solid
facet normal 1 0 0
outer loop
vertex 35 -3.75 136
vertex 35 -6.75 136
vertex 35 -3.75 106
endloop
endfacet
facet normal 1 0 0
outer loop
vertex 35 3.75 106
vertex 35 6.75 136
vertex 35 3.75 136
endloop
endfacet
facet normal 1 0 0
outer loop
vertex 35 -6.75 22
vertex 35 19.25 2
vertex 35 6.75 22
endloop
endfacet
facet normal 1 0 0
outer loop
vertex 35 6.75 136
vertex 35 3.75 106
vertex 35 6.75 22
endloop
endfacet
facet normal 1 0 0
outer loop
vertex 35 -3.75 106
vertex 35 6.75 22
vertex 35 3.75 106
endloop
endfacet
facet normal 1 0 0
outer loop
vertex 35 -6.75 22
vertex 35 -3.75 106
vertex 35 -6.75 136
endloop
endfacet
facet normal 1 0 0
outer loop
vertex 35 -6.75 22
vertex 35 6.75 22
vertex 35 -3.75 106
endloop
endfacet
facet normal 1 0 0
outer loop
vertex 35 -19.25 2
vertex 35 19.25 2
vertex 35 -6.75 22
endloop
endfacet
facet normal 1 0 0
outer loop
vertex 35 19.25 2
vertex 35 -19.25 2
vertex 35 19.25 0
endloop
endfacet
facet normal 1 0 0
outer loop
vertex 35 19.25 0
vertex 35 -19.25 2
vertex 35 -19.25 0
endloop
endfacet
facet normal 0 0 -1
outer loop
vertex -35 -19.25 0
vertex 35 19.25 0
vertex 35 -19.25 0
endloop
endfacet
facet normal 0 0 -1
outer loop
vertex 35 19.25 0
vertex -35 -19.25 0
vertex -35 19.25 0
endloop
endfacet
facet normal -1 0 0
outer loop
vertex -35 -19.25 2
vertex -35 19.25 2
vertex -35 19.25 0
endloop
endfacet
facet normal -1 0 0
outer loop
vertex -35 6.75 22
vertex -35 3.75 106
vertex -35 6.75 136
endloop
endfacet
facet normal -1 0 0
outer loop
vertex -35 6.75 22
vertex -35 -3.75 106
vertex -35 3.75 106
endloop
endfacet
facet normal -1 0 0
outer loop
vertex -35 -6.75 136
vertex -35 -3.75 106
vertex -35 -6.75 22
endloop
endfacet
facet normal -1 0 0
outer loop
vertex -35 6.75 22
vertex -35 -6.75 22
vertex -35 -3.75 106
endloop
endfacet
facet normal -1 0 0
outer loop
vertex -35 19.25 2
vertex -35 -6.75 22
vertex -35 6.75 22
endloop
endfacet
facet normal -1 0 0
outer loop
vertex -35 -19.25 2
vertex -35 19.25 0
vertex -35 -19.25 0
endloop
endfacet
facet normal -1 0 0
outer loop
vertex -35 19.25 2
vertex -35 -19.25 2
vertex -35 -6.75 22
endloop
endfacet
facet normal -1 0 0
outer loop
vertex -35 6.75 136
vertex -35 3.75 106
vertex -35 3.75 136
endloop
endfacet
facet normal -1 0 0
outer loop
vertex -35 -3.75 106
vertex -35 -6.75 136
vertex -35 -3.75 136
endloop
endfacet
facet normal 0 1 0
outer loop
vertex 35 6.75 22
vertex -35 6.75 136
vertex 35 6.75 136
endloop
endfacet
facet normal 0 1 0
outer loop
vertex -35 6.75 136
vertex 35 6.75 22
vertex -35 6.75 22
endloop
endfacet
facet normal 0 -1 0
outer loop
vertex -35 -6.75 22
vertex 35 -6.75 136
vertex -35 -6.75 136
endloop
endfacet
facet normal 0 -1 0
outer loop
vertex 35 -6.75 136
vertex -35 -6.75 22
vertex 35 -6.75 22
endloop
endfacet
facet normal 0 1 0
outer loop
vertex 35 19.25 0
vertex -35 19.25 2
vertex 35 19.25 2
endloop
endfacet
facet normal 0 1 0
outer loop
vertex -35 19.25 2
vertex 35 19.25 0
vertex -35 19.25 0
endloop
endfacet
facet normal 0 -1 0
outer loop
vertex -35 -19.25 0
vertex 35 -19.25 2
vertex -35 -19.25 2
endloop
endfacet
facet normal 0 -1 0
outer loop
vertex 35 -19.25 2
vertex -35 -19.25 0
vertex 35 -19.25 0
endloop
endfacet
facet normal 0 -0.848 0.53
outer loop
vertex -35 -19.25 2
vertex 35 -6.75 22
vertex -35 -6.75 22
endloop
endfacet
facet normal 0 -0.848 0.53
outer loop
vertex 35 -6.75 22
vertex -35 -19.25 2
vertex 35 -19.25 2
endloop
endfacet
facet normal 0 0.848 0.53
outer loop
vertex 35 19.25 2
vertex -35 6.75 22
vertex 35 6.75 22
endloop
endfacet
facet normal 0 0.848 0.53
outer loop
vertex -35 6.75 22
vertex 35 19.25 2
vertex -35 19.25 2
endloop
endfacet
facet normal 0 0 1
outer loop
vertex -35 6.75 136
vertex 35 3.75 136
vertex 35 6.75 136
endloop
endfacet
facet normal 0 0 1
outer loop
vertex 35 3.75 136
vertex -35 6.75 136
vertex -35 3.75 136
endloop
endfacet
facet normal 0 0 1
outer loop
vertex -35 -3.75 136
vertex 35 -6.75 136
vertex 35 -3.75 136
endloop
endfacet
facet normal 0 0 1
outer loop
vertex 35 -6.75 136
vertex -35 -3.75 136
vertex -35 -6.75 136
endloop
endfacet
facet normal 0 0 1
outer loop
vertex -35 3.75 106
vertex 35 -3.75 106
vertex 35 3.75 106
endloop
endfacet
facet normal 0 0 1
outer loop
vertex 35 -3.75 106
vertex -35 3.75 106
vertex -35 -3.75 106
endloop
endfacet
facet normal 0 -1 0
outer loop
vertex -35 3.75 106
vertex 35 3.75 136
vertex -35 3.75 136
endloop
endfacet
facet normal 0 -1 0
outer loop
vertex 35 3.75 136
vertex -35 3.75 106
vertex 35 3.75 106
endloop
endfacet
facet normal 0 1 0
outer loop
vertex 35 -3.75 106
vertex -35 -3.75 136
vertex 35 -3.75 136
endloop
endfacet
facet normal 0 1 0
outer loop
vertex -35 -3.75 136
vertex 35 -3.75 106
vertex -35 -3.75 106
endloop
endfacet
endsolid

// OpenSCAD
module slot() {
    walls = 3;
    base = 6;
    thickness = 7.5;
    //height = 77.5;
    height = 30;
    width = 70;
    
    total_thickness = thickness + walls * 2;
    total_height = height + base;
    
    difference() {
        translate([-width/2, -total_thickness/2, 0]) cube([width, total_thickness, total_height]);
        translate([-(width + 10)/2, -thickness/2, base]) cube([width + 10, thickness, total_height + 10]);
    }
}

module stand() {
    height = 100;
    top_height = 13.5;
    top_width = 70;
    
    base_width = top_width + 0;
    base_height = top_height + 25;
    base_stretch = 20;
    
    translate([-top_width/2, -top_height/2, 0]) cube([top_width, top_height, height]);
    translate([-base_width/2, -base_height/2, 0]) cube([base_width, base_height, 2]);
    translate([0, 0, 2]) polyhedron([
        [-base_width/2, -base_height/2, 0],
        [base_width/2, -base_height/2, 0],
        [base_width/2, base_height/2, 0],
        [-base_width/2, base_height/2, 0],
    
        [-top_width/2, -top_height/2, base_stretch],
        [top_width/2, -top_height/2, base_stretch],
        [top_width/2, top_height/2, base_stretch],
        [-top_width/2, top_height/2, base_stretch],
    
    ], [
        [ 0, 4, 5, 1 ],
        [ 1, 5, 6, 2 ],
        [ 2, 6, 7, 3 ],
        [ 3, 7, 4, 0 ],
        
        [ 7, 6, 5, 4 ],
        [ 0, 1, 2, 3 ],
    ]);
}

stand();
translate([0, 0, 100]) slot();
